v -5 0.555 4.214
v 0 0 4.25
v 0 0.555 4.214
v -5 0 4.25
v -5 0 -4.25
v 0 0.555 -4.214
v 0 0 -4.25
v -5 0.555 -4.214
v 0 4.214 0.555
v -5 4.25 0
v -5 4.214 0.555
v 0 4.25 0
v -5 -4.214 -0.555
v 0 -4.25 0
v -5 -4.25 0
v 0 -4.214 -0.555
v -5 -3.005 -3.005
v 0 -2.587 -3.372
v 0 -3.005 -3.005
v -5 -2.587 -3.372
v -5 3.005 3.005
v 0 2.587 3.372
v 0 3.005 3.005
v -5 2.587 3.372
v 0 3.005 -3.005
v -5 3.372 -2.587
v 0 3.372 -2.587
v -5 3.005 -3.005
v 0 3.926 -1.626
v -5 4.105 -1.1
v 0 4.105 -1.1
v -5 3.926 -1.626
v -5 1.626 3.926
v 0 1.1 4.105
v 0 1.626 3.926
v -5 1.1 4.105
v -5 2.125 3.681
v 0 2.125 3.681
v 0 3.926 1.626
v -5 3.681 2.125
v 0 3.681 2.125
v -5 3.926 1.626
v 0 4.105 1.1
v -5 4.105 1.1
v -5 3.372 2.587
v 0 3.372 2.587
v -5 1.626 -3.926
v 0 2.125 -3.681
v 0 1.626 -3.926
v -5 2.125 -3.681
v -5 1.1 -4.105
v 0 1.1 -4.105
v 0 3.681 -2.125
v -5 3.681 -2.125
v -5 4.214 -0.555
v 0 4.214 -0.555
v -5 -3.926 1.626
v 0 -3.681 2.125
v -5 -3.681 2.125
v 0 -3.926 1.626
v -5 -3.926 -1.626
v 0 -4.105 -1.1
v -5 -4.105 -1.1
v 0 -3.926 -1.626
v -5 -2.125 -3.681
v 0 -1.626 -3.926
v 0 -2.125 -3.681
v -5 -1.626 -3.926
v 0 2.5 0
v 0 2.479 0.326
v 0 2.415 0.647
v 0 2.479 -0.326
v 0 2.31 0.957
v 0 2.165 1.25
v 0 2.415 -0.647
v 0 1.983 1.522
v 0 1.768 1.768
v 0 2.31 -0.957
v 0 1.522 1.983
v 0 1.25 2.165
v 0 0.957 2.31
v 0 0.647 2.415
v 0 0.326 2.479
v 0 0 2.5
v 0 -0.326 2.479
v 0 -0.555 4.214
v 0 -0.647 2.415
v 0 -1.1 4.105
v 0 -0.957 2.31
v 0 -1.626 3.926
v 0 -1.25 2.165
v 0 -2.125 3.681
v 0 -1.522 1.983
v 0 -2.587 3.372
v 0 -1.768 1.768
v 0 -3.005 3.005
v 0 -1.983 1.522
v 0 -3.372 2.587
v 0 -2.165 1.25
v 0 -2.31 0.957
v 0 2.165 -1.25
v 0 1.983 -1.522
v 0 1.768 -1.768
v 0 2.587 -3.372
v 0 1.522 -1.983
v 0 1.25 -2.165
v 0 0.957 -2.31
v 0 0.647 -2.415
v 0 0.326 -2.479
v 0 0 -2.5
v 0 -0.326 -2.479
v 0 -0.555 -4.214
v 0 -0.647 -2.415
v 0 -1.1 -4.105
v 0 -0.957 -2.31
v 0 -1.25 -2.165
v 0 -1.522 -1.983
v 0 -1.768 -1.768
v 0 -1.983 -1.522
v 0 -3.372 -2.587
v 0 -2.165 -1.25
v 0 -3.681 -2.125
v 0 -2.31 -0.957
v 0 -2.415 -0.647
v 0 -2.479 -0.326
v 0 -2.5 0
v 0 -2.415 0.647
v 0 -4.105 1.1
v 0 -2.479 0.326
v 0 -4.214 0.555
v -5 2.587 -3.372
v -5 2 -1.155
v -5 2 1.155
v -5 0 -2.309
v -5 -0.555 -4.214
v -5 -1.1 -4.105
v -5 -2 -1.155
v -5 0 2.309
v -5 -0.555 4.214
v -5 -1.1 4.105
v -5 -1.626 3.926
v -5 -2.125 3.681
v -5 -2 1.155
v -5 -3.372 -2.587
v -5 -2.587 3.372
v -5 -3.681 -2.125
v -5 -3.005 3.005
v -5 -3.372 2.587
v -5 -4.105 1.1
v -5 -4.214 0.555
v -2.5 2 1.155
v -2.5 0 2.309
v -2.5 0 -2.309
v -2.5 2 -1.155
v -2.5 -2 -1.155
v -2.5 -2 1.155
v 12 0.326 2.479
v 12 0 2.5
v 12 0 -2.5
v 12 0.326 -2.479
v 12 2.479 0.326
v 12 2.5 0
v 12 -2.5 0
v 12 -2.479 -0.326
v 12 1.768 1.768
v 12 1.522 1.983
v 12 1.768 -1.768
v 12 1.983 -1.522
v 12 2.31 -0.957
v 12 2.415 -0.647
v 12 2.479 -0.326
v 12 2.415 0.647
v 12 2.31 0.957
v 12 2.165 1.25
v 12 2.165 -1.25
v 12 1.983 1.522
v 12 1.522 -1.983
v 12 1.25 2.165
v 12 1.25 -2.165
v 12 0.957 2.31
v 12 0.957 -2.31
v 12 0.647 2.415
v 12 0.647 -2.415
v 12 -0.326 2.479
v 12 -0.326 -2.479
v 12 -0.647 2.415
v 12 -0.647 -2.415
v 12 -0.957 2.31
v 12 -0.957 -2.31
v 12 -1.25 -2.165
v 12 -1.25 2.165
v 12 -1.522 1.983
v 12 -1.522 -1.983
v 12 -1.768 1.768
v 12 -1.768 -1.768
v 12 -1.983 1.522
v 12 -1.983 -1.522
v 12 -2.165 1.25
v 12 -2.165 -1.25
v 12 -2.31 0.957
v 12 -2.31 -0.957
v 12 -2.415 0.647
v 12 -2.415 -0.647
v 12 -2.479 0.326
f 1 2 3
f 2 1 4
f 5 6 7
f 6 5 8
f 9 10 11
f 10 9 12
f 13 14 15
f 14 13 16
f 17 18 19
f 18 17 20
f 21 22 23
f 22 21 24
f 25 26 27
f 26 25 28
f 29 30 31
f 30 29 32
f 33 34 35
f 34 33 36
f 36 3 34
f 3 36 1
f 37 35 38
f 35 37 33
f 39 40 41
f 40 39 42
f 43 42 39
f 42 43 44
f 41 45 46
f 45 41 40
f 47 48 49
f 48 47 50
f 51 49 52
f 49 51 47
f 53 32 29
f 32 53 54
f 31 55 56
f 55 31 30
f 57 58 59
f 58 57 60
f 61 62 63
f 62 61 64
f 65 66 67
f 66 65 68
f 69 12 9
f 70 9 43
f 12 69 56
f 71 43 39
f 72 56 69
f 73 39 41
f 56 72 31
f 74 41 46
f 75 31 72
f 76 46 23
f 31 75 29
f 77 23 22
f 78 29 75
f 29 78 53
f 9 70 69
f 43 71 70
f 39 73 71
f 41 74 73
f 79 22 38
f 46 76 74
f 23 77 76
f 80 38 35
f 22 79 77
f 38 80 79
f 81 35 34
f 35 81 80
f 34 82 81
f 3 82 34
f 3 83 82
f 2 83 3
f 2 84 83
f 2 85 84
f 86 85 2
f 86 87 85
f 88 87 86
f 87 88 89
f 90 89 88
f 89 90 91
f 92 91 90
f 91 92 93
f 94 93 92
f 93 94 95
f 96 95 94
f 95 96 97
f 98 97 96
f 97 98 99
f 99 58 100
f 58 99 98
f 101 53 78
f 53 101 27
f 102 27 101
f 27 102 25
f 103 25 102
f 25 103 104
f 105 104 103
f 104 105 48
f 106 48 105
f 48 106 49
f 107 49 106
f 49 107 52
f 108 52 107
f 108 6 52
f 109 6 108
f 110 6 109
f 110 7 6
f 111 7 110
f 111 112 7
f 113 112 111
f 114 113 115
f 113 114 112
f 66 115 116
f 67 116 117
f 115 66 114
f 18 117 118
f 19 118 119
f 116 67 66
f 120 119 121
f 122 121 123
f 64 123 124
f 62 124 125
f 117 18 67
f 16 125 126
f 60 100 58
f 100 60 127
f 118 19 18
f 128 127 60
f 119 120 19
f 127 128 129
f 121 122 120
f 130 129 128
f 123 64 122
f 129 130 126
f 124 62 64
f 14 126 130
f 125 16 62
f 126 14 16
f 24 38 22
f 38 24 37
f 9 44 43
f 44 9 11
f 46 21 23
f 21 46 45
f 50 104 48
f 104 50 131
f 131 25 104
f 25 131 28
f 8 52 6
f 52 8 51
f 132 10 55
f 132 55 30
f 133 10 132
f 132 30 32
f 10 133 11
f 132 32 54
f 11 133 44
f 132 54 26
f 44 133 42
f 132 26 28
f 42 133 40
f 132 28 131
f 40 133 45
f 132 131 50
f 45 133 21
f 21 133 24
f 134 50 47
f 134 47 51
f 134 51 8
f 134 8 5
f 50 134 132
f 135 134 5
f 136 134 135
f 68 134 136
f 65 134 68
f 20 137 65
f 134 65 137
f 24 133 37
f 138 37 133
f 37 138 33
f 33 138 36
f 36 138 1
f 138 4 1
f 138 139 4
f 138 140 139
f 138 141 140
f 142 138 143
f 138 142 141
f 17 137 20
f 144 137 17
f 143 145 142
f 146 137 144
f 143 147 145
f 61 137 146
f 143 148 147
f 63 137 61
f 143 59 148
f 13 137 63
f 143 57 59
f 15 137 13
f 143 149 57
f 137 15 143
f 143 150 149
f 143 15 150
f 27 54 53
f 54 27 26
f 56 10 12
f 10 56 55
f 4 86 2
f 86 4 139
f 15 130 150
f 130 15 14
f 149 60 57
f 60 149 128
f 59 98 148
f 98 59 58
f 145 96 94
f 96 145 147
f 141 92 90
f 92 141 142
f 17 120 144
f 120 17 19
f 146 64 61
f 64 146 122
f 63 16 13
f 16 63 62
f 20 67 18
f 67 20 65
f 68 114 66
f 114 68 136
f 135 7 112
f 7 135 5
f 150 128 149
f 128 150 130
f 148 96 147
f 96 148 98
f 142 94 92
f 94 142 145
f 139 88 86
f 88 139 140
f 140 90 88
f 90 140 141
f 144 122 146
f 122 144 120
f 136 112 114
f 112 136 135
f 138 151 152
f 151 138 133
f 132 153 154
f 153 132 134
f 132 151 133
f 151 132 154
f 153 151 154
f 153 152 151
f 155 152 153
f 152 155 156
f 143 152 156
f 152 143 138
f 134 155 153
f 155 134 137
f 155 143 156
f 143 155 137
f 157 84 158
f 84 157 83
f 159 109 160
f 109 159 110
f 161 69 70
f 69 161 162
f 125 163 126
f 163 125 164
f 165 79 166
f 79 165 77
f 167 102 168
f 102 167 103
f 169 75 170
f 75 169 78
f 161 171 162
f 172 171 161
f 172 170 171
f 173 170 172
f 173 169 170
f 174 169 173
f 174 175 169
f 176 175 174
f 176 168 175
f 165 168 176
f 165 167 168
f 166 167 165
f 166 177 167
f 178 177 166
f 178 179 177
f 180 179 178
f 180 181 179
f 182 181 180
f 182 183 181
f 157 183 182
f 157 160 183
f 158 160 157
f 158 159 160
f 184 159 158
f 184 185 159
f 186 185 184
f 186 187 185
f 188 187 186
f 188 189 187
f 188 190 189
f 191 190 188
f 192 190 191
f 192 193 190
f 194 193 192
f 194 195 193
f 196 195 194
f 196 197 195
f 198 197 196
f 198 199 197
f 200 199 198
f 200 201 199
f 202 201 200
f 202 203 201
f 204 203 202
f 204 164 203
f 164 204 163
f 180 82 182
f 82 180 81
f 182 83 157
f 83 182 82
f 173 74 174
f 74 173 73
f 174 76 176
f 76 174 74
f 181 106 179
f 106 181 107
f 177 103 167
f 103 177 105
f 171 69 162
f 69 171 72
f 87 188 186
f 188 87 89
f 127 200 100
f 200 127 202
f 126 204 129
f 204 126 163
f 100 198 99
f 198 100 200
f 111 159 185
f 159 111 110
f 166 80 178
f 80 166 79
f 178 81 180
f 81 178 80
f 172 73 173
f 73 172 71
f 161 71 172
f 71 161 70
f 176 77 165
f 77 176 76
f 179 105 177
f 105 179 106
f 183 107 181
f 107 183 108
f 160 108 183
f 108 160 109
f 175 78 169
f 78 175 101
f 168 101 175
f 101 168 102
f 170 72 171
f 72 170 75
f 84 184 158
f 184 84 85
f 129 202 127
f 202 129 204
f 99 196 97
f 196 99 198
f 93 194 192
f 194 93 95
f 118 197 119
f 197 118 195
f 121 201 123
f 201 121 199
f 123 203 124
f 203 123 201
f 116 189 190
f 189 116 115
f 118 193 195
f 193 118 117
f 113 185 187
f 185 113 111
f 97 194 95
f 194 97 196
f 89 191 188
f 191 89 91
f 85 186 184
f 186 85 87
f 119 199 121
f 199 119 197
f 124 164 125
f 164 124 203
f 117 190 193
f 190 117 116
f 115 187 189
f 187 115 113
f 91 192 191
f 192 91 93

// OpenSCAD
// file: ../../../lib/nutsnbolts/data-access.scad
// Norm Nuts and Bolts - a OpenSCAD library
// Copyright (C) 2012  Johannes Kneer

// This program is free software: you can redistribute it and/or modify
// it under the terms of the GNU General Public License as published by
// the Free Software Foundation, either version 3 of the License, or
// (at your option) any later version.

// This program is distributed in the hope that it will be useful,
// but WITHOUT ANY WARRANTY; without even the implied warranty of
// MERCHANTABILITY or FITNESS FOR A PARTICULAR PURPOSE.  See the
// GNU General Public License for more details.

// You should have received a copy of the GNU General Public License
// along with this program.  If not, see <http://www.gnu.org/licenses/>.


// DATABASE ACCESS FUNCTIONS AND CONSTANTS



// == CONSTANTS ==

// screw table access keys
_NB_S_DESC            = 0;
_NB_S_FAMKEY			    = 1;
_NB_S_LENGTH          = 2;
_NB_S_NOTHREAD_LENGTH = 3;

_NB_F_DESC			      = 0;
_NB_F_OUTER_DIA       = 1;
_NB_F_INNER_DIA       = 2;
_NB_F_LEAD            = 3;
_NB_F_KEY             = 4;
_NB_F_KEY_DEPTH       = 5;
_NB_F_HEAD_HEIGHT     = 6;
_NB_F_HEAD_DIA        = 7;
_NB_F_NUT_KEY         = 8;
_NB_F_NUT_HEIGHT      = 9;
_NB_F_PITCH_FINE      = 10;
_NB_F_PITCH_MEDIUM    = 11;
_NB_F_PITCH_COARSE    = 12;


// == FUNCTIONS ==

// _get_screw("descriptor")   with descriptor = M8x25
//   find the line for a general object in the data matrix

function _get_screw(n) = data_screw[search([n], data_screw)[0]];
function _get_screw_fam(n) = data_screw_fam[search([_get_screw(n)[_NB_S_FAMKEY]], data_screw_fam)[0]];

function _get_fam(n) = data_screw_fam[search([n], data_screw_fam)[0]];


// _get_XXXXX("descriptor") functions
// find a single property in the database

function _get_desc(n)        = _get_screw(n)[_NB_S_DESC];
function _get_famkey(n)         = _get_screw(n)[_NB_S_FAMKEY];
function _get_length(n)      = _get_screw(n)[_NB_S_LENGTH];
function _get_nt_length(n)   = _get_screw(n)[_NB_S_NOTHREAD_LENGTH];

function _get_outer_dia(n)   = _get_screw_fam(n)[_NB_F_OUTER_DIA];
function _get_inner_dia(n)   = _get_screw_fam(n)[_NB_F_INNER_DIA];
function _get_lead(n)        = _get_screw_fam(n)[_NB_F_LEAD];
function _get_head_height(n) = _get_screw_fam(n)[_NB_F_HEAD_HEIGHT];
function _get_head_dia(n)    = _get_screw_fam(n)[_NB_F_HEAD_DIA];
function _get_nut_key(n)     = _get_screw_fam(n)[_NB_F_NUT_KEY];
function _get_nut_height(n)  = _get_screw_fam(n)[_NB_F_NUT_HEIGHT];
function _get_fine_pitch(n)  = _get_screw_fam(n)[_NB_F_PITCH_FINE];
function _get_medium_pitch(n)  = _get_screw_fam(n)[_NB_F_PITCH_MEDIUM];
function _get_coarse_pitch(n)  = _get_screw_fam(n)[_NB_F_PITCH_COARSE];
// main file
/**********************************************************************************************************************
 **
 ** parts/vitamins/screw_M5x12.scad
 **
 ** This file renders a screw of the dimensions specified by the file name.
 **
 **********************************************************************************************************************/

include <../../../lib/nutsnbolts/cyl_head_bolt.scad>;

$fn = 48;
rotate([0, -90, 0])
	screw("M5x12"); 
